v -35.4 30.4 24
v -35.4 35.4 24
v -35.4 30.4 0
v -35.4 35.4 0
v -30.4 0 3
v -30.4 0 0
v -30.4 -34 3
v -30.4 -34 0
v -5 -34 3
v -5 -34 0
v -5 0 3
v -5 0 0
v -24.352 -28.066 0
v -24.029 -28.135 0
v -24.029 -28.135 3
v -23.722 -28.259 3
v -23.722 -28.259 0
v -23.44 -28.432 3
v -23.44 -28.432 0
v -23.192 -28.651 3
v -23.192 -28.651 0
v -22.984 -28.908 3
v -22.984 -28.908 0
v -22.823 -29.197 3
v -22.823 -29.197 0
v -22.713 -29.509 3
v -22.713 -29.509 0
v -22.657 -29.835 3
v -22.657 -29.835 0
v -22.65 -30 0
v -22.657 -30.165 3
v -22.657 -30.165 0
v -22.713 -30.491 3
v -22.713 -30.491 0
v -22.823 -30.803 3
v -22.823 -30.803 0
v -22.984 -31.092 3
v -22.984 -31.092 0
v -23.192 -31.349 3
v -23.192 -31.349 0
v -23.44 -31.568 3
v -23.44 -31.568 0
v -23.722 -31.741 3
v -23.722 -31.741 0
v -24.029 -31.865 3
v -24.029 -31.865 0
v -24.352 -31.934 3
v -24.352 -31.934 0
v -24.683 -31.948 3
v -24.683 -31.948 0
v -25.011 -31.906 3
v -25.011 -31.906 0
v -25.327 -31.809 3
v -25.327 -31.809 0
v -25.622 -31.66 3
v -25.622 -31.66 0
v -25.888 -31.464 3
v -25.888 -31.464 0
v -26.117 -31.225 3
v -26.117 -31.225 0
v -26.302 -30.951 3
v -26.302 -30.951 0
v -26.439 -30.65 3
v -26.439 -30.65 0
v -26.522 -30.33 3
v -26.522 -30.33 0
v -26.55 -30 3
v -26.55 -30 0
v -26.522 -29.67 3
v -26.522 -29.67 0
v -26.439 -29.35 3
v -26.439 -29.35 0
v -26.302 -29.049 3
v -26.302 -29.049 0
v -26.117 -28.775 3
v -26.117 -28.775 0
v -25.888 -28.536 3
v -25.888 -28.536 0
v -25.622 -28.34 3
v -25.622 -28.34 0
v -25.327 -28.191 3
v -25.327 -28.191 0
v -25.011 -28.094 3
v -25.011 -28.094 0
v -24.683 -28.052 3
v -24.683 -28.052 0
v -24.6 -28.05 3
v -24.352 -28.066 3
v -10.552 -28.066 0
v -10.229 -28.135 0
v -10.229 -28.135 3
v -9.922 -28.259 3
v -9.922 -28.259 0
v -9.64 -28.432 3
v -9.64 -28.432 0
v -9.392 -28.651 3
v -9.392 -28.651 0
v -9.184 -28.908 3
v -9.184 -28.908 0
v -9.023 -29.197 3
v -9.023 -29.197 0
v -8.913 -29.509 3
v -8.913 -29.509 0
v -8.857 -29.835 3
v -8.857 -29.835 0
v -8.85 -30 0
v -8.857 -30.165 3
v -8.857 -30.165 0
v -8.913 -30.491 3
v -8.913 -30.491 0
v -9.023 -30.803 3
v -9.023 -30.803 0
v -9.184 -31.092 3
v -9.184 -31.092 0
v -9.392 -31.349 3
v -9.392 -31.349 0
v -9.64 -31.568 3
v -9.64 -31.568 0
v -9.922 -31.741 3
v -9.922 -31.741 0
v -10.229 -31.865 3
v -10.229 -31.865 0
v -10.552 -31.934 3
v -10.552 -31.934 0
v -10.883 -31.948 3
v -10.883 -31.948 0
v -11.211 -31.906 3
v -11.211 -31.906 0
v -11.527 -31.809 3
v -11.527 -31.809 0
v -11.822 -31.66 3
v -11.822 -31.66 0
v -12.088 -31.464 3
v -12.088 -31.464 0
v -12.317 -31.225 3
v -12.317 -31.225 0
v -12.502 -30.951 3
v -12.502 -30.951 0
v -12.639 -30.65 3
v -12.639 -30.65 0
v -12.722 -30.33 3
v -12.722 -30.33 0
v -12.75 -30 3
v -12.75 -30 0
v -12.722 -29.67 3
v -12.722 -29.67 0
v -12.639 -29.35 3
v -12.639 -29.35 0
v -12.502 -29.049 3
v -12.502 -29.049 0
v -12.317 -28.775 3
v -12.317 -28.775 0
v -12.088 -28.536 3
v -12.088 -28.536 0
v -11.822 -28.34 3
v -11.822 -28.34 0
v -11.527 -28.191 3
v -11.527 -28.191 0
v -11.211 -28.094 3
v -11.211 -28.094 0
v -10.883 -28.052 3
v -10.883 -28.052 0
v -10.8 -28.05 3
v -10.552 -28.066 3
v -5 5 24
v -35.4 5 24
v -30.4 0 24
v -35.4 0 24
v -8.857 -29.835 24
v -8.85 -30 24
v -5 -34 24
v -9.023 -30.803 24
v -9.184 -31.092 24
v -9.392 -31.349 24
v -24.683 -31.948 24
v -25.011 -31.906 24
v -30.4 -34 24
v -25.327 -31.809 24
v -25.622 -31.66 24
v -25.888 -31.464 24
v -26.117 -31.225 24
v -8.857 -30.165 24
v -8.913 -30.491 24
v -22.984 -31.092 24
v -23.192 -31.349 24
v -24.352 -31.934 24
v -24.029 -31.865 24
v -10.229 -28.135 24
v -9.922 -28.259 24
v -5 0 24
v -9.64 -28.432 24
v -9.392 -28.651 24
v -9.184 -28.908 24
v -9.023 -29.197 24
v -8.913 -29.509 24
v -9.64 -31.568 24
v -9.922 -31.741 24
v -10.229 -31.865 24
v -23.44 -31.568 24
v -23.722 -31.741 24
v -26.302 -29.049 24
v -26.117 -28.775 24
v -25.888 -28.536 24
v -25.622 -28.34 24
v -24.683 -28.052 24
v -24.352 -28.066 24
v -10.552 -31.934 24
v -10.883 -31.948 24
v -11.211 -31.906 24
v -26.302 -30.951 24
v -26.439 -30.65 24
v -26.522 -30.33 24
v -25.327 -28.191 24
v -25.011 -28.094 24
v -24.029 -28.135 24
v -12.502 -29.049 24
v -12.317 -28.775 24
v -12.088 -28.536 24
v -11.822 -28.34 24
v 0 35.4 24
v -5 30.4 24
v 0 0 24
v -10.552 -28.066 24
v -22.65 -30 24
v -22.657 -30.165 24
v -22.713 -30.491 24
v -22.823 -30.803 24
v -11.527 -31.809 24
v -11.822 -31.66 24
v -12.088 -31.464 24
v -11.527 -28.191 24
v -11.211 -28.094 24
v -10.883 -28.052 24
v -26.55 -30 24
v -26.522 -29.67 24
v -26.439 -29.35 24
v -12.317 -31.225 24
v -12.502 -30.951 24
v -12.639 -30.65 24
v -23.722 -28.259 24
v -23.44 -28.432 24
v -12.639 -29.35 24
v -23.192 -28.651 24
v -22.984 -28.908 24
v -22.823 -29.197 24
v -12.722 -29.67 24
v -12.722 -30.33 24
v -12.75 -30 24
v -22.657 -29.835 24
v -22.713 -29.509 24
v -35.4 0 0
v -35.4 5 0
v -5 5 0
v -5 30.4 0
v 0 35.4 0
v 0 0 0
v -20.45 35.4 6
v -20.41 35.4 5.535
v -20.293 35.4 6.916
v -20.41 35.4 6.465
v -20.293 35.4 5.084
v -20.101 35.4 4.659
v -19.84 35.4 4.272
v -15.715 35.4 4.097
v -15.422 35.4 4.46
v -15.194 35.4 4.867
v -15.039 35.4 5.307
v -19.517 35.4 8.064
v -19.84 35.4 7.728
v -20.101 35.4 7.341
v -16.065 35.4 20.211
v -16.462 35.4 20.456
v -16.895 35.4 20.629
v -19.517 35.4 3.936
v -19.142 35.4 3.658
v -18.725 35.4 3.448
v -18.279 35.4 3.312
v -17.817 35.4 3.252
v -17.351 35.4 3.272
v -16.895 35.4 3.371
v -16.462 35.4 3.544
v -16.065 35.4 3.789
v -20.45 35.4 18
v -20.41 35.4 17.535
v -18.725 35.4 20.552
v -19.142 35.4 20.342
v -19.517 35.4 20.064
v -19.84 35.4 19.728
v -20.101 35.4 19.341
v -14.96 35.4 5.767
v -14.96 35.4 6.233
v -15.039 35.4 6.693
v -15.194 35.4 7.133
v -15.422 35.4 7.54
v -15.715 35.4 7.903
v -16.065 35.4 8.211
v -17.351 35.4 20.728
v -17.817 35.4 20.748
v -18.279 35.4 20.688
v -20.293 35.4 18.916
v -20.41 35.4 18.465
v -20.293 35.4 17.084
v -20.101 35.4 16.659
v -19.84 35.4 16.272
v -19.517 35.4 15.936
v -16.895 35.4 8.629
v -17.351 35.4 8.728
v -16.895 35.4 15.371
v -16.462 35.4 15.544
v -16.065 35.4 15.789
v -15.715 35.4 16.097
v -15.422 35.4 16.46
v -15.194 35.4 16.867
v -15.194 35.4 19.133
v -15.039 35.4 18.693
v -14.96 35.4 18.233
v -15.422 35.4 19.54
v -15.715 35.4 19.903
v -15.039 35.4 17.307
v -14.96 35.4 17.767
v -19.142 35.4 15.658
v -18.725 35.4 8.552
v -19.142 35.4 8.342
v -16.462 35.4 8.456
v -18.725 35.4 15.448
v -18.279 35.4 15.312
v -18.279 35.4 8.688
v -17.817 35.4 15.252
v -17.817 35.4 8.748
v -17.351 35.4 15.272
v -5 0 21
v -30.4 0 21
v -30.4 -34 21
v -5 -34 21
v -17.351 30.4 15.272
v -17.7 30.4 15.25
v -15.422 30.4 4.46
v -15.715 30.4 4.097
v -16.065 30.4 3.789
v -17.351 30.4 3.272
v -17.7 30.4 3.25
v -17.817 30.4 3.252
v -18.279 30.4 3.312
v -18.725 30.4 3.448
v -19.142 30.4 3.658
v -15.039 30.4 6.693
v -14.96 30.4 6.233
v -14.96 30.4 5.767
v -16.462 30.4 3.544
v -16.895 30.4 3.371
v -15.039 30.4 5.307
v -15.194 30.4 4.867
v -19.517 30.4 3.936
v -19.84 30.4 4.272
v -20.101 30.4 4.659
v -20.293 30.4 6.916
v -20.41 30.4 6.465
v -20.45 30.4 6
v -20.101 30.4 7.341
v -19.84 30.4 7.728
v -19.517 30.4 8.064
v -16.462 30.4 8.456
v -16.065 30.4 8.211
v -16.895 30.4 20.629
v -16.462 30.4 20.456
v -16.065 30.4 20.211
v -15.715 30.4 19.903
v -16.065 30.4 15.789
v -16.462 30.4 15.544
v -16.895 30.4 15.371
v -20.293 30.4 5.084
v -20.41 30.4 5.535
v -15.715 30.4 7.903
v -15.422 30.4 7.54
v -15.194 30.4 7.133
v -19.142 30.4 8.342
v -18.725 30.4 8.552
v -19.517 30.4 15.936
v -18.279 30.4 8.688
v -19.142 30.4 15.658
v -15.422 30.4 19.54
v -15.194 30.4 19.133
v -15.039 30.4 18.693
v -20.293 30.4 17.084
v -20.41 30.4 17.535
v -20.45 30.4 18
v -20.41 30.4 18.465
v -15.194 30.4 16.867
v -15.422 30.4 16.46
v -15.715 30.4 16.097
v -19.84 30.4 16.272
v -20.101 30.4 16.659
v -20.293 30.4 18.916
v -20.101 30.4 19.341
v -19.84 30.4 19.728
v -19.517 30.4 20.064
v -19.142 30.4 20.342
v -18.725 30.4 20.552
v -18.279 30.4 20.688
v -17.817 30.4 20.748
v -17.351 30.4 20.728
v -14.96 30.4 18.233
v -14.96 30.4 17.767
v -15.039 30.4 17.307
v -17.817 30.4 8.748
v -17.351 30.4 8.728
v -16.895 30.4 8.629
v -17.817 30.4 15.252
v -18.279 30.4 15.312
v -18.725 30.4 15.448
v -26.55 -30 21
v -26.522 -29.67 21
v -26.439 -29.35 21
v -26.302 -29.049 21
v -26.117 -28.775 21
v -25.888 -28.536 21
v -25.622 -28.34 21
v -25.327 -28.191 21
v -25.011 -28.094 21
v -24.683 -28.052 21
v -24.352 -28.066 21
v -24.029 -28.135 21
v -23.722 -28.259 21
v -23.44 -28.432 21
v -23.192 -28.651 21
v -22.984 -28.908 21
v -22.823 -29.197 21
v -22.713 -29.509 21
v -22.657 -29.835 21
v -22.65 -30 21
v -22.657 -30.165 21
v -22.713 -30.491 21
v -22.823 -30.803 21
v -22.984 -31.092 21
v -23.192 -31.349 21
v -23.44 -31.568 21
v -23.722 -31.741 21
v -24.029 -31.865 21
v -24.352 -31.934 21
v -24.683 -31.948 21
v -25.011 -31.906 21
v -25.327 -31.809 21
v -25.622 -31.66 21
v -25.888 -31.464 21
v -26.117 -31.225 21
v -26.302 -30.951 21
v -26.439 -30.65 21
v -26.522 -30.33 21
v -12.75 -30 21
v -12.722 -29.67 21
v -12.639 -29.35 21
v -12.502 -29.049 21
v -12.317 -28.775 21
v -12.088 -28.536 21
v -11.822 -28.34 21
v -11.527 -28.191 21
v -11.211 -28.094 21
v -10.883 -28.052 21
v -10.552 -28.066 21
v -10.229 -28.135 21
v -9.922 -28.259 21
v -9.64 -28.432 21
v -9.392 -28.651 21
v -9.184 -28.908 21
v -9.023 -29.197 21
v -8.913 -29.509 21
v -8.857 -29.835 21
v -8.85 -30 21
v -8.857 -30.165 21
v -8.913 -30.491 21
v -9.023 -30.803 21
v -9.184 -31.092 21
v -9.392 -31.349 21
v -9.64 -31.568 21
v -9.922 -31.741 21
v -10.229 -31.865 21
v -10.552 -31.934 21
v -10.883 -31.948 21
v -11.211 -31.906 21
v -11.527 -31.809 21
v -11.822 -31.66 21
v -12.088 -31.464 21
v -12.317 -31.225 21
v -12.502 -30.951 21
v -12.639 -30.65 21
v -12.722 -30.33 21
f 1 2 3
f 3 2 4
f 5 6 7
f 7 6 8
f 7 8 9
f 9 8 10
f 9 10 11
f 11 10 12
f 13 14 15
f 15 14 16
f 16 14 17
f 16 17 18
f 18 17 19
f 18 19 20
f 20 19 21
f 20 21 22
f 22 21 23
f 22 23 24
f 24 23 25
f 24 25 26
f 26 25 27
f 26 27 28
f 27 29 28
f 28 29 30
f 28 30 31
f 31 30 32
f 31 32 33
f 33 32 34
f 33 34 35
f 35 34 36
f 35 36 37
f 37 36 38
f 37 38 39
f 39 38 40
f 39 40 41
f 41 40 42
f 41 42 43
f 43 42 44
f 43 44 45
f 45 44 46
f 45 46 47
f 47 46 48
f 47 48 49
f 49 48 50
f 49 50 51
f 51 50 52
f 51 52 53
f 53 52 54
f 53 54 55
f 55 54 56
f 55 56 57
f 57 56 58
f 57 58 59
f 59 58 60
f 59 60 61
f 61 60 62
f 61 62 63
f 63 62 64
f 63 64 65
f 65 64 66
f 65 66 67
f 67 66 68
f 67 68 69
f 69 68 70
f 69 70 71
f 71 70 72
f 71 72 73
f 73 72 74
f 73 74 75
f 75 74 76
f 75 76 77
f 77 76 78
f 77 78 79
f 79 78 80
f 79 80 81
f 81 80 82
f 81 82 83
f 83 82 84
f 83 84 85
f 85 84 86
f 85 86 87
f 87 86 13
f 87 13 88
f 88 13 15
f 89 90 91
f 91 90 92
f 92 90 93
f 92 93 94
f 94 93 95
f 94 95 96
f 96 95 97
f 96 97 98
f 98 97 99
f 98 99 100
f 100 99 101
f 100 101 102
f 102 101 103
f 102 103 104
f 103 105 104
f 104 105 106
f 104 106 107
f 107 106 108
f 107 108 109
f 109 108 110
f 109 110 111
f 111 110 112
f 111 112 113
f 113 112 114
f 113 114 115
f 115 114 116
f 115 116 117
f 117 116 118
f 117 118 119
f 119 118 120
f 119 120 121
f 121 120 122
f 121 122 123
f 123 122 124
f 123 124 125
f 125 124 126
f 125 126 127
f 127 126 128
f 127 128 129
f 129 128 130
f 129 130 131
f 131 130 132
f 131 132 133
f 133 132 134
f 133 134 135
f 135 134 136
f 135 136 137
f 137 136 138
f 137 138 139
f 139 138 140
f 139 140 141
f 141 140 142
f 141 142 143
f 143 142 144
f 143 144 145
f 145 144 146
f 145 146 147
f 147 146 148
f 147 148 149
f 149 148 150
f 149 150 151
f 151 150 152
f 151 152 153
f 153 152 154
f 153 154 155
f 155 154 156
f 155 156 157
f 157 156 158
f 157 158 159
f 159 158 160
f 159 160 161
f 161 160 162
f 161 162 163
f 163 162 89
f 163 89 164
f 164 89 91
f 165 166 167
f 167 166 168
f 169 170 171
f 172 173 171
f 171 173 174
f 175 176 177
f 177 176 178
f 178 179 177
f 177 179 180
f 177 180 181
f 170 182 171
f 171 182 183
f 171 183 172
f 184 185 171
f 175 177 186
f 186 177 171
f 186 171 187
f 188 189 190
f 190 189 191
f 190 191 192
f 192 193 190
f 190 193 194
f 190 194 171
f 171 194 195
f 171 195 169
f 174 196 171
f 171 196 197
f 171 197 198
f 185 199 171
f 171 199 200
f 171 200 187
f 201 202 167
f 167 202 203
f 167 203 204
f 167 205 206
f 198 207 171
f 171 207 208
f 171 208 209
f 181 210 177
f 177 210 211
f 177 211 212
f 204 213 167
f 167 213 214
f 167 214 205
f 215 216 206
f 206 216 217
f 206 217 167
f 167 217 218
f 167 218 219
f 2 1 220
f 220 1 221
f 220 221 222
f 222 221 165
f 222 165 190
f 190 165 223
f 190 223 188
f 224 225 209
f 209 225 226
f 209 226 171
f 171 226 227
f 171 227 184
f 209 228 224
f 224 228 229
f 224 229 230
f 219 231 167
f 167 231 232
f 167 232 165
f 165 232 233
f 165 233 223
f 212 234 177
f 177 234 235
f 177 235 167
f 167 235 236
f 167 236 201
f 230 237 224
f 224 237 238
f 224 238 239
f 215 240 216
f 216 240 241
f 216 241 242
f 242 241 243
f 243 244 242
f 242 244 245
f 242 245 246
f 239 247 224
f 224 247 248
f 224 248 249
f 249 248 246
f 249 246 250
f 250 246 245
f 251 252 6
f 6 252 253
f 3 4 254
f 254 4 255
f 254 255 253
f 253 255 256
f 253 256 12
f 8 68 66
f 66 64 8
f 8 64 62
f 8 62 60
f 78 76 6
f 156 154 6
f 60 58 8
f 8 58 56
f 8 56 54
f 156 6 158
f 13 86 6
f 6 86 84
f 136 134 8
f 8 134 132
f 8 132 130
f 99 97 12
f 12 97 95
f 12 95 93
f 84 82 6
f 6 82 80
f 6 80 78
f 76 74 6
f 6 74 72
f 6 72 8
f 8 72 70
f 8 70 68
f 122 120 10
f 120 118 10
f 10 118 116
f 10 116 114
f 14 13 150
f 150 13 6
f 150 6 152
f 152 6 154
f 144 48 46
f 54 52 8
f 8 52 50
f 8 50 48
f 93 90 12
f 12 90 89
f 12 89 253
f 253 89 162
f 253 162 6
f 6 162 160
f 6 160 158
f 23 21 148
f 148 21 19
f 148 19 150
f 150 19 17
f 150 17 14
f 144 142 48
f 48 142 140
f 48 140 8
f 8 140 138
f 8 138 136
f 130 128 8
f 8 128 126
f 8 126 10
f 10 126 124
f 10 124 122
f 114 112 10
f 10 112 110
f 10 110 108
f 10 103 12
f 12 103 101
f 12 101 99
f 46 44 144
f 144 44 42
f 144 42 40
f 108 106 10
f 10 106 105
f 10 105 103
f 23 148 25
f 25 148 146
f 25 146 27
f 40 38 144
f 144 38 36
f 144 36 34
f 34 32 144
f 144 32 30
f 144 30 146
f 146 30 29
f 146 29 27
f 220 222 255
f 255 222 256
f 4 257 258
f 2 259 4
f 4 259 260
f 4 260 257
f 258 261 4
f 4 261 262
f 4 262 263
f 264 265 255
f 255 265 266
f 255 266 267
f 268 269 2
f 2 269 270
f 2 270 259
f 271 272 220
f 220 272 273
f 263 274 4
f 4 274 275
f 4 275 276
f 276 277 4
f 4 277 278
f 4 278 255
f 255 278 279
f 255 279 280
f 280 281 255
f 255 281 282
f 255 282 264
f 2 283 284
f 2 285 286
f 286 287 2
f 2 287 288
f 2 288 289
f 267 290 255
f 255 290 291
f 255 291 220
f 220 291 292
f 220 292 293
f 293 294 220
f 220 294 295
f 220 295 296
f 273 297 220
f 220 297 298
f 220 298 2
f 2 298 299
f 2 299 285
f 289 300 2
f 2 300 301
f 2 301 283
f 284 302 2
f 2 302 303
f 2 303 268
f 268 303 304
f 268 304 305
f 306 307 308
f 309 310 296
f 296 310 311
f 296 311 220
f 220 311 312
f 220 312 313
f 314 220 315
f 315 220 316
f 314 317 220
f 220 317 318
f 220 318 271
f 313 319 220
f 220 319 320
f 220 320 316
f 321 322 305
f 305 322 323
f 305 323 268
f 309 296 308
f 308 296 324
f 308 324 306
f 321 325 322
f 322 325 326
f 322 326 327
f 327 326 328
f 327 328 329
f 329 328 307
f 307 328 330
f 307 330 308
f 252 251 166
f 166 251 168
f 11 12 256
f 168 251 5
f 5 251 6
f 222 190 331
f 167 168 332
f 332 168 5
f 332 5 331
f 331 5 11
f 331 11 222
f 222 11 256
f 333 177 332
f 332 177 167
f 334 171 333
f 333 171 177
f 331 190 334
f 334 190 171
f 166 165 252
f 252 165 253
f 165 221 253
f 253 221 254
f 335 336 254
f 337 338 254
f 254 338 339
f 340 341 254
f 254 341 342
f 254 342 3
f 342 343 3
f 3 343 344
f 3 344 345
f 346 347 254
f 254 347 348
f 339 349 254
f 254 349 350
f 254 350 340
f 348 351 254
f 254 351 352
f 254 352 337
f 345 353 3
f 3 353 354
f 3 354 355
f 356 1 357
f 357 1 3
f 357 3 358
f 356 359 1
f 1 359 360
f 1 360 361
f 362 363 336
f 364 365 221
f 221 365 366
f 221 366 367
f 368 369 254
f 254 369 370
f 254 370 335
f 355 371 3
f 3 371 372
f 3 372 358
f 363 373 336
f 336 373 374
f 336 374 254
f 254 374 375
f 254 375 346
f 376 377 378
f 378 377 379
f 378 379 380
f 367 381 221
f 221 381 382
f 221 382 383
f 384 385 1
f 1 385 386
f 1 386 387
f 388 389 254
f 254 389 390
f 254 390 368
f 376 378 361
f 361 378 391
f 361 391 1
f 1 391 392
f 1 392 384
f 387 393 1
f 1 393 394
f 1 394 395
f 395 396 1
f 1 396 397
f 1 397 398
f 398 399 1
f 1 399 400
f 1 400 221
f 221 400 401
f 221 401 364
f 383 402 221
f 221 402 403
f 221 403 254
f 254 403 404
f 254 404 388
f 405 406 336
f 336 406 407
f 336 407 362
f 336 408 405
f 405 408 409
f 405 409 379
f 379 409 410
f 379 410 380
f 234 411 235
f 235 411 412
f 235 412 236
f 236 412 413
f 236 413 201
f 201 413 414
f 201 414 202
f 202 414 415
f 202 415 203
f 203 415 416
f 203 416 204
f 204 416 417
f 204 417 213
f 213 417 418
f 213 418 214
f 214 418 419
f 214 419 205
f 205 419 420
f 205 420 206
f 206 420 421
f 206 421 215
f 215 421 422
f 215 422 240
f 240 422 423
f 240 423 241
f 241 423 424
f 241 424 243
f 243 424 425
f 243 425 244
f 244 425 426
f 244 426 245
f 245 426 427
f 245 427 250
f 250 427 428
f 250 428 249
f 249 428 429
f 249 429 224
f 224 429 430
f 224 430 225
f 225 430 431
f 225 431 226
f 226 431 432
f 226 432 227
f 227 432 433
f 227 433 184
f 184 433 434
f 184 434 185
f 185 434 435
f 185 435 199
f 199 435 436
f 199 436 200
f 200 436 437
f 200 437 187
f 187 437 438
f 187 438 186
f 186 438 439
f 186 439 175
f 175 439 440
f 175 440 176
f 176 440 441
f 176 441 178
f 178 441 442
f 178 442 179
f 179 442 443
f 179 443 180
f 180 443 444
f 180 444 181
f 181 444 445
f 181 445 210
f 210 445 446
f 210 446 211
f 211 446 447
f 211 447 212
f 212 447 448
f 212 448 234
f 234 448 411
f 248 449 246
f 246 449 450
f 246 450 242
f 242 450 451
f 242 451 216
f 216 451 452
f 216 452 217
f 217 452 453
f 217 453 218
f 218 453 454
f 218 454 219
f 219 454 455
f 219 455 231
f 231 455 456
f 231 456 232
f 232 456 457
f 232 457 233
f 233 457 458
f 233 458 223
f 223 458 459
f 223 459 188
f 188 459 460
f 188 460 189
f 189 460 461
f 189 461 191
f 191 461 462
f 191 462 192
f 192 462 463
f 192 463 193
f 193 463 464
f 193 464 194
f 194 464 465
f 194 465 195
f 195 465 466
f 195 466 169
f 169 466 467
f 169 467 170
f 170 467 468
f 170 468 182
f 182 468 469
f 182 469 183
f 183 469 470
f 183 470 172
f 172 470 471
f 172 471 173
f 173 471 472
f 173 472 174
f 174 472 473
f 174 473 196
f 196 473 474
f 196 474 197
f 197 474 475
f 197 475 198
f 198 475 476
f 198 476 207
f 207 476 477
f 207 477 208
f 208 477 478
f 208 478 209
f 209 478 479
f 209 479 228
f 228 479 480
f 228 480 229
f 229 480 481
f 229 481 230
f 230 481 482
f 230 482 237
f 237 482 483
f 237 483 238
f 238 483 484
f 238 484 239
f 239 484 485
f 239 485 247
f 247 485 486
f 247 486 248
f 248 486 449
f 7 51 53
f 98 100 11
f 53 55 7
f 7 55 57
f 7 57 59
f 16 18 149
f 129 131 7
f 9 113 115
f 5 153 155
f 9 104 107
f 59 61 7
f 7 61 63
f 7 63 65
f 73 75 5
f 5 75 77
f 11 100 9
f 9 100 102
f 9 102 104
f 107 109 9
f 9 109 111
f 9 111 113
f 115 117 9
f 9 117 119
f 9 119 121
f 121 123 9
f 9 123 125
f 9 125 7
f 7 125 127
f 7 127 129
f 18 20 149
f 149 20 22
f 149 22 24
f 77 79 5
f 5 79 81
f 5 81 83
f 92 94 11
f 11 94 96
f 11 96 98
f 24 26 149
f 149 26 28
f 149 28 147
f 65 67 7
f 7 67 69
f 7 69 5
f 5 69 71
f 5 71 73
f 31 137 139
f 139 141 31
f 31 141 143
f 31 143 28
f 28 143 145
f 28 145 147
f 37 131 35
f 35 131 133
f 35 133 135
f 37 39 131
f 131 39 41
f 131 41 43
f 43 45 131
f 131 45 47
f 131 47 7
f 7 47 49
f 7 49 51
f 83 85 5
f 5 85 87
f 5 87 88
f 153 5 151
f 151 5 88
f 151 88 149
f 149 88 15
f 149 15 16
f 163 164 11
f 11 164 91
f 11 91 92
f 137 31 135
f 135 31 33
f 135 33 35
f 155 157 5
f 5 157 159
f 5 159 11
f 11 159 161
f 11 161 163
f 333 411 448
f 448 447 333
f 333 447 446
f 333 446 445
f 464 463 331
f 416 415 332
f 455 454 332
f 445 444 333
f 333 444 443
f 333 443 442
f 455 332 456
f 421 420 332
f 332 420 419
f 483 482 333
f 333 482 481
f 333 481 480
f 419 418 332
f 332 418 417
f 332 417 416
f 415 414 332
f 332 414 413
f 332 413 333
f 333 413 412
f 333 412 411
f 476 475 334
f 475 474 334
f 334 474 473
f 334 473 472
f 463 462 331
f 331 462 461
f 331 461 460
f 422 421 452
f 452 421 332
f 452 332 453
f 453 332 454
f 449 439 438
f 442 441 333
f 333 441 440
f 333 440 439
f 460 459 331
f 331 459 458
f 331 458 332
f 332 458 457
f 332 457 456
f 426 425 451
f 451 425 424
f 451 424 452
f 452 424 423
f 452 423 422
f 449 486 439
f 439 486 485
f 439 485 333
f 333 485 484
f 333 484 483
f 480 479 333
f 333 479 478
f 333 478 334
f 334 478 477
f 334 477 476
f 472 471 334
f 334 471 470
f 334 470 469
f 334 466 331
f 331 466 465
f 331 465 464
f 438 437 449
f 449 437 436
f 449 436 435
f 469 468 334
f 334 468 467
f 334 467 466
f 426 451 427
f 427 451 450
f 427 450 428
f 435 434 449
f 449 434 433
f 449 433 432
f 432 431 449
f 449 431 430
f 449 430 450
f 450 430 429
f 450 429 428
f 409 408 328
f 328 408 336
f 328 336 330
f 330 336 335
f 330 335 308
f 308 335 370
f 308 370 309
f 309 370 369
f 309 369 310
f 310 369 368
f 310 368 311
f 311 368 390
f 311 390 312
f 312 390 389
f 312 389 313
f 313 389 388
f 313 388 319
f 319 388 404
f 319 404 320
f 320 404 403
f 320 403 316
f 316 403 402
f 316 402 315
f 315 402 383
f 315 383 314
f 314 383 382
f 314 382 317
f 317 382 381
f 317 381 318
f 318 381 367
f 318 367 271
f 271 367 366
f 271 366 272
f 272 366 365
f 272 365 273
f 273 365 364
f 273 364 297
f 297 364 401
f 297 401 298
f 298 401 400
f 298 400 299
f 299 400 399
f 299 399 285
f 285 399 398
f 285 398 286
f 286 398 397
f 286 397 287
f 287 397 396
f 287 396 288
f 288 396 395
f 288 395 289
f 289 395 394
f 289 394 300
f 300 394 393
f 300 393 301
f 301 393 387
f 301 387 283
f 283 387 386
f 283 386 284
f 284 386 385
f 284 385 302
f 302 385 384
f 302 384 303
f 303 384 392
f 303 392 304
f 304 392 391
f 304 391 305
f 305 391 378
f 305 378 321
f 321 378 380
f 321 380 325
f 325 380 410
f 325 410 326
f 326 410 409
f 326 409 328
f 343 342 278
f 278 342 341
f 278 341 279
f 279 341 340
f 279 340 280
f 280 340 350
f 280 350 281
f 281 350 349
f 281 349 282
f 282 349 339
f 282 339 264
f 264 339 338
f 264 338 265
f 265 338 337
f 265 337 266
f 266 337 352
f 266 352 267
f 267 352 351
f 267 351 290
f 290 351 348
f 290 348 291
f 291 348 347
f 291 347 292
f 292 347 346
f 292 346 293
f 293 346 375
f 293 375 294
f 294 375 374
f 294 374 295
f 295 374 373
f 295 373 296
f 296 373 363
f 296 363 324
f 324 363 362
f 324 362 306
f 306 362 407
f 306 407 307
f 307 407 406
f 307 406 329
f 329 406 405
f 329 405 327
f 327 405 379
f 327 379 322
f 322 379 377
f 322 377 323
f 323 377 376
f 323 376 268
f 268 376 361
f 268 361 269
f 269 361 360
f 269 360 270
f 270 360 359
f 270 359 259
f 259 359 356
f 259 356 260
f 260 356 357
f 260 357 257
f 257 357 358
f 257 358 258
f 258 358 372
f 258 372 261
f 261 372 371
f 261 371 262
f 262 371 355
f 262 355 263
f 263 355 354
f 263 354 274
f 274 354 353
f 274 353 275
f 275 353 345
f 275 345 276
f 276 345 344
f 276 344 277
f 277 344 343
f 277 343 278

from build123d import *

# Parameters (mm, degrees)
SKETCH1_R           = 1.95
SKETCH1_W           = 25.4
SKETCH1_H           = 25.4
BOSS_EXTRUDE1_DEPTH = 24
SKETCH3_W           = 18
SKETCH3_H           = 34
CUT_EXTRUDE1_DEPTH  = 56.518645517
CUT_EXTRUDE2_REACH  = 83.52
SKETCH4_R           = 2.75
SKETCH5_W           = 5
SKETCH5_H           = 25.4
CUT_EXTRUDE3_DEPTH  = 56.518645517


with BuildPart() as part:
    # Sketch1 → Boss-Extrude1 (new body)
    with BuildSketch(Plane.XY):
        Polygon((0, 0), (0, 35.4), (-35.4, 35.4), (-35.4, 0), (-30.4, 0), (-30.4, -34), (-5, -34), (-5, 0), align=None)
        with Locations((-24.6, -30)):
            Circle(SKETCH1_R, mode=Mode.SUBTRACT)
        with Locations((-10.8, -30)):
            Circle(SKETCH1_R, mode=Mode.SUBTRACT)
        with Locations((-17.7, 17.7)):
            Rectangle(SKETCH1_W, SKETCH1_H, mode=Mode.SUBTRACT)
    extrude(amount=BOSS_EXTRUDE1_DEPTH)

    # Sketch3 → Cut-Extrude1 (cut, through all)
    with BuildSketch(Plane.ZY.offset(35.4)):
        with Locations((12, -17)):
            Rectangle(SKETCH3_W, SKETCH3_H)
    extrude(amount=-CUT_EXTRUDE1_DEPTH, mode=Mode.SUBTRACT)

    # Sketch4 → Cut-Extrude2 (cut, up to next)
    with BuildSketch(Plane(origin=(0, 35.4, 0), x_dir=(1, 0, 0), z_dir=(0, 1, 0)), mode=Mode.PRIVATE) as cut_extrude2_sk1:
        with Locations(Location((-17.7, -6, 0), (0, 0, 180))):
            Circle(SKETCH4_R)
    cut_extrude2_tool1 = extrude(cut_extrude2_sk1.sketch, amount=-CUT_EXTRUDE2_REACH, mode=Mode.PRIVATE) & part.part
    # Sketch4 → Cut-Extrude2 (cut, up to next)
    with BuildSketch(Plane(origin=(0, 35.4, 0), x_dir=(1, 0, 0), z_dir=(0, 1, 0)), mode=Mode.PRIVATE) as cut_extrude2_sk2:
        with Locations(Location((-17.7, -18, 0), (0, 0, 180))):
            Circle(SKETCH4_R)
    cut_extrude2_tool2 = extrude(cut_extrude2_sk2.sketch, amount=-CUT_EXTRUDE2_REACH, mode=Mode.PRIVATE) & part.part
    add(cut_extrude2_tool1.solids().sort_by_distance((-17.7, 35.4, 6))[0], mode=Mode.SUBTRACT)
    add(cut_extrude2_tool2.solids().sort_by_distance((-17.7, 35.4, 18))[0], mode=Mode.SUBTRACT)

    # Sketch5 → Cut-Extrude3 (cut, through all)
    with BuildSketch(Plane(origin=(0, 0, 0), x_dir=(-1, 0, 0), z_dir=(0, 0, -1))):
        with Locations((32.9, 17.7)):
            Rectangle(SKETCH5_W, SKETCH5_H)
    extrude(amount=-CUT_EXTRUDE3_DEPTH, mode=Mode.SUBTRACT)


solid = part.part
